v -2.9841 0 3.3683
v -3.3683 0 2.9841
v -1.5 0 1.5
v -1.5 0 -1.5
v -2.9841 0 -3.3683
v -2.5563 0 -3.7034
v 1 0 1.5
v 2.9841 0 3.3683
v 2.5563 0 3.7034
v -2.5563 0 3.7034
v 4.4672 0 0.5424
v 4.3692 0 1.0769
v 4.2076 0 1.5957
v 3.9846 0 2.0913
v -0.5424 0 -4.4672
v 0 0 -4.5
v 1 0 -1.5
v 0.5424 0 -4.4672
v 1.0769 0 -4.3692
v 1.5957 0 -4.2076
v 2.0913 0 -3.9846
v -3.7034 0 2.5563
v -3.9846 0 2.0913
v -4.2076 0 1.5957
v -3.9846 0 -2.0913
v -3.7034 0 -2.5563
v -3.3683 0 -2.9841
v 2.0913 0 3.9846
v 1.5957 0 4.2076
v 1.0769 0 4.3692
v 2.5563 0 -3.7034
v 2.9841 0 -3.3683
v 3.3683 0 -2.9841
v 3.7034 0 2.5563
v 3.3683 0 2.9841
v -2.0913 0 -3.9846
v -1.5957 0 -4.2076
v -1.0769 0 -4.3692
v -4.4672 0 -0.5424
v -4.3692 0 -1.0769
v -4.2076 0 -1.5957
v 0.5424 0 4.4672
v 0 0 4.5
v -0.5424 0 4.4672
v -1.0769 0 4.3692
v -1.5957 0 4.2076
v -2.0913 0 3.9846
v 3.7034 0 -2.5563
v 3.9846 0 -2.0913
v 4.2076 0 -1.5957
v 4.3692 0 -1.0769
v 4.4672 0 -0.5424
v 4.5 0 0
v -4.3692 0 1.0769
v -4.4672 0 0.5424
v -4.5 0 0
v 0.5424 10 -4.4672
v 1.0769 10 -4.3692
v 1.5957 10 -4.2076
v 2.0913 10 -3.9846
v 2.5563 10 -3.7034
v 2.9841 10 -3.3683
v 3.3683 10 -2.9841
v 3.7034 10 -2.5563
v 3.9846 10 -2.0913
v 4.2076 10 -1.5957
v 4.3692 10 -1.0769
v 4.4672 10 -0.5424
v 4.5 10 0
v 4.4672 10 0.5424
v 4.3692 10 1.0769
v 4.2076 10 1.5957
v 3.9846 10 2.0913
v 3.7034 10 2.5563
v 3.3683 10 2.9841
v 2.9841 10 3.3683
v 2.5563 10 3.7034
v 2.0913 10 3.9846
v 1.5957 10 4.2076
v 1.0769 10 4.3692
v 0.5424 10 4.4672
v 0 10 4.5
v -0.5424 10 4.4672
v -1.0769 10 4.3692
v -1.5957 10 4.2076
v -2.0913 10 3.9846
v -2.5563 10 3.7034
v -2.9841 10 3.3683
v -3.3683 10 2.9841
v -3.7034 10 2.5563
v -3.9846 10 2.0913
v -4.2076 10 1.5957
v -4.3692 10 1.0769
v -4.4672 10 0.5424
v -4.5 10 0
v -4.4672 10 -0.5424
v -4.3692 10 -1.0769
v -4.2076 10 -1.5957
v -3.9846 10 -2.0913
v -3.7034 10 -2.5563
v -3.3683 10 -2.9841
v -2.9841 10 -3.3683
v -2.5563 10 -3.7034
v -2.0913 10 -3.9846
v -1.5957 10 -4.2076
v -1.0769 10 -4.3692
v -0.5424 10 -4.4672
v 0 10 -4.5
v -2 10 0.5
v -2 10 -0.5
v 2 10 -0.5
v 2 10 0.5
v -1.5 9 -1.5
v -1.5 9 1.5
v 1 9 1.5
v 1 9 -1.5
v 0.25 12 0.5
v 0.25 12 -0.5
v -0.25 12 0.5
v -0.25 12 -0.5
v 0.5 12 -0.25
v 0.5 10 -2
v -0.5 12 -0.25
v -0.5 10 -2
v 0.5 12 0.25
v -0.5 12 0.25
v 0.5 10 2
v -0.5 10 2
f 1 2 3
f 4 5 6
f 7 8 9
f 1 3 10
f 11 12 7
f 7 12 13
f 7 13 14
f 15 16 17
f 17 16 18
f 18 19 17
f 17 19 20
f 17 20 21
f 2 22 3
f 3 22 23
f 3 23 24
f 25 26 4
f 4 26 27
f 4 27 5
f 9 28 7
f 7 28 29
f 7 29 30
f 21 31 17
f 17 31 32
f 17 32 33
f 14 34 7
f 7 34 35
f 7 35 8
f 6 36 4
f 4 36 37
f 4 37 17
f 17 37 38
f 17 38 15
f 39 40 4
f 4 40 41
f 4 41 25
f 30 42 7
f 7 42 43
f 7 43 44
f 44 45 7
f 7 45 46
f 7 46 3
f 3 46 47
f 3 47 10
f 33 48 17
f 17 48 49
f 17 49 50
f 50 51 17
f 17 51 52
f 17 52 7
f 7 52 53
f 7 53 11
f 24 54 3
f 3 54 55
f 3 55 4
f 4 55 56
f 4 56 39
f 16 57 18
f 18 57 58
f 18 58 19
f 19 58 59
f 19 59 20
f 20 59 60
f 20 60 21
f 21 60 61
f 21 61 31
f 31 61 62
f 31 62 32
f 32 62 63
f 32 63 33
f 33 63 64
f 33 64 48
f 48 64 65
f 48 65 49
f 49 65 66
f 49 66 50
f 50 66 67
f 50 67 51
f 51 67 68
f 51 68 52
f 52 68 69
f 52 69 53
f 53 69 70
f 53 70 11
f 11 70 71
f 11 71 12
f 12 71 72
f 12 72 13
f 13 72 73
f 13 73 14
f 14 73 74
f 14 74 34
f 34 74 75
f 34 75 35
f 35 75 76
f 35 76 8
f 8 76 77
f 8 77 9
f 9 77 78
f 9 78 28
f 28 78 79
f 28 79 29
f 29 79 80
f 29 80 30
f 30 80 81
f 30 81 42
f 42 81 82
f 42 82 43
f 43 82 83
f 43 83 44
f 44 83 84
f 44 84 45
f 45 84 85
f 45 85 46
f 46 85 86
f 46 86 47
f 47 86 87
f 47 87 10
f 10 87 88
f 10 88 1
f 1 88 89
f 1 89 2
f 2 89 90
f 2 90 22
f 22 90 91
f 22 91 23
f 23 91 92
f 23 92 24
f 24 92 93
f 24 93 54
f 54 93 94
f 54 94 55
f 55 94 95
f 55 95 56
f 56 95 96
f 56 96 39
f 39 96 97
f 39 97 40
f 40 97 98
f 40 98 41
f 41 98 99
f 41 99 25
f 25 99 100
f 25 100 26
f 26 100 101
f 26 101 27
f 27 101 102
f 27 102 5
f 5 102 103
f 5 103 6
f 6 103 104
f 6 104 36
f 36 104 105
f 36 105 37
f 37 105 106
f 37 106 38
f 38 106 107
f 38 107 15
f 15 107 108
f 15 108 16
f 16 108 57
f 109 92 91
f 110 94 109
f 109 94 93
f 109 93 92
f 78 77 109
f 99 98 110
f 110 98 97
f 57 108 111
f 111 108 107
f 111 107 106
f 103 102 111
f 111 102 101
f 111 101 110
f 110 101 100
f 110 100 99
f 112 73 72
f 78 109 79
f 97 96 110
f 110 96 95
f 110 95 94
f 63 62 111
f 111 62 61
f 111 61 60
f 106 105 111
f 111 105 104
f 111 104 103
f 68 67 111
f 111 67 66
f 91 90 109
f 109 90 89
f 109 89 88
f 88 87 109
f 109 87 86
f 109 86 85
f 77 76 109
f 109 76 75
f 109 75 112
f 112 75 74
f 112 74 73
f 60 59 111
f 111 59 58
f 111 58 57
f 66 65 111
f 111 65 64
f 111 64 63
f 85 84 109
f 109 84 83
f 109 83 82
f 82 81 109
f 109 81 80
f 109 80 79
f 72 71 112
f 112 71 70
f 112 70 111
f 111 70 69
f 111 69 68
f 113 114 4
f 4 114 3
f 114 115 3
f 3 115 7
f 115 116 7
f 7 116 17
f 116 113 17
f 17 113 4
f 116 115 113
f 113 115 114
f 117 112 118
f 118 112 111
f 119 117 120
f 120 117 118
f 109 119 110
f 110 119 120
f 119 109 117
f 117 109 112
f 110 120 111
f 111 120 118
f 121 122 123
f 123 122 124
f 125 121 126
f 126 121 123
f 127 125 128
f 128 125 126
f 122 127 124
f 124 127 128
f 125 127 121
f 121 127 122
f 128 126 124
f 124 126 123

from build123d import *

# Parameters (mm, degrees)
SKETCH_1_R          = 4.5
SKETCH_1_W          = 2.5
SKETCH_1_H          = 3
EXTRUDE_1_DEPTH     = 10
SKETCH_2_W          = 2.5
SKETCH_2_H          = 3
CUT_EXTRUDE_1_DEPTH = 9
EXTRUDE_2_DEPTH     = 0.5
EXTRUDE_3_DEPTH     = 0.5


with BuildPart() as part:
    # Эскиз1 → Бобышка-Вытянуть1 (new body)
    # profile 1 of 2: a face of its own
    with BuildSketch(Plane(origin=(0, 0, 0), x_dir=(1, 0, 0), z_dir=(0, 1, 0))):
        with Locations(Location((0, 0, 0), (0, 0, 270))):
            Circle(SKETCH_1_R)
        with Locations((-0.25, 0)):
            Rectangle(SKETCH_1_W, SKETCH_1_H, mode=Mode.SUBTRACT)
    # profile 2 of 2: a face of its own
    with BuildSketch(Plane(origin=(0, 0, 0), x_dir=(1, 0, 0), z_dir=(0, 1, 0))):
        with Locations((-0.25, 0)):
            Rectangle(SKETCH_1_W, SKETCH_1_H)
    extrude(amount=EXTRUDE_1_DEPTH)

    # Эскиз2 → Вырез-Вытянуть1 (cut)
    with BuildSketch(Plane(origin=(0, 0, 0), x_dir=(1, 0, 0), z_dir=(0, 1, 0))):
        with Locations((-0.25, 0)):
            Rectangle(SKETCH_2_W, SKETCH_2_H)
    extrude(amount=CUT_EXTRUDE_1_DEPTH, mode=Mode.SUBTRACT)

    # Эскиз3 → Бобышка-Вытянуть2 (add, symmetric)
    with BuildSketch(Plane.XY):
        Polygon((2, 10), (-2, 10), (-0.25, 12), (0.25, 12), align=None)
    extrude(amount=EXTRUDE_2_DEPTH, both=True)


with BuildPart() as body_2:
    # Эскиз4 → Бобышка-Вытянуть3 (new, symmetric)
    with BuildSketch(Plane(origin=(0, 0, 0), x_dir=(0, 0, -1), z_dir=(1, 0, 0))):
        Polygon((2, 10), (-2, 10), (-0.25, 12), (0.25, 12), align=None)
    extrude(amount=EXTRUDE_3_DEPTH, both=True)


solid = Compound([part.part, body_2.part])
